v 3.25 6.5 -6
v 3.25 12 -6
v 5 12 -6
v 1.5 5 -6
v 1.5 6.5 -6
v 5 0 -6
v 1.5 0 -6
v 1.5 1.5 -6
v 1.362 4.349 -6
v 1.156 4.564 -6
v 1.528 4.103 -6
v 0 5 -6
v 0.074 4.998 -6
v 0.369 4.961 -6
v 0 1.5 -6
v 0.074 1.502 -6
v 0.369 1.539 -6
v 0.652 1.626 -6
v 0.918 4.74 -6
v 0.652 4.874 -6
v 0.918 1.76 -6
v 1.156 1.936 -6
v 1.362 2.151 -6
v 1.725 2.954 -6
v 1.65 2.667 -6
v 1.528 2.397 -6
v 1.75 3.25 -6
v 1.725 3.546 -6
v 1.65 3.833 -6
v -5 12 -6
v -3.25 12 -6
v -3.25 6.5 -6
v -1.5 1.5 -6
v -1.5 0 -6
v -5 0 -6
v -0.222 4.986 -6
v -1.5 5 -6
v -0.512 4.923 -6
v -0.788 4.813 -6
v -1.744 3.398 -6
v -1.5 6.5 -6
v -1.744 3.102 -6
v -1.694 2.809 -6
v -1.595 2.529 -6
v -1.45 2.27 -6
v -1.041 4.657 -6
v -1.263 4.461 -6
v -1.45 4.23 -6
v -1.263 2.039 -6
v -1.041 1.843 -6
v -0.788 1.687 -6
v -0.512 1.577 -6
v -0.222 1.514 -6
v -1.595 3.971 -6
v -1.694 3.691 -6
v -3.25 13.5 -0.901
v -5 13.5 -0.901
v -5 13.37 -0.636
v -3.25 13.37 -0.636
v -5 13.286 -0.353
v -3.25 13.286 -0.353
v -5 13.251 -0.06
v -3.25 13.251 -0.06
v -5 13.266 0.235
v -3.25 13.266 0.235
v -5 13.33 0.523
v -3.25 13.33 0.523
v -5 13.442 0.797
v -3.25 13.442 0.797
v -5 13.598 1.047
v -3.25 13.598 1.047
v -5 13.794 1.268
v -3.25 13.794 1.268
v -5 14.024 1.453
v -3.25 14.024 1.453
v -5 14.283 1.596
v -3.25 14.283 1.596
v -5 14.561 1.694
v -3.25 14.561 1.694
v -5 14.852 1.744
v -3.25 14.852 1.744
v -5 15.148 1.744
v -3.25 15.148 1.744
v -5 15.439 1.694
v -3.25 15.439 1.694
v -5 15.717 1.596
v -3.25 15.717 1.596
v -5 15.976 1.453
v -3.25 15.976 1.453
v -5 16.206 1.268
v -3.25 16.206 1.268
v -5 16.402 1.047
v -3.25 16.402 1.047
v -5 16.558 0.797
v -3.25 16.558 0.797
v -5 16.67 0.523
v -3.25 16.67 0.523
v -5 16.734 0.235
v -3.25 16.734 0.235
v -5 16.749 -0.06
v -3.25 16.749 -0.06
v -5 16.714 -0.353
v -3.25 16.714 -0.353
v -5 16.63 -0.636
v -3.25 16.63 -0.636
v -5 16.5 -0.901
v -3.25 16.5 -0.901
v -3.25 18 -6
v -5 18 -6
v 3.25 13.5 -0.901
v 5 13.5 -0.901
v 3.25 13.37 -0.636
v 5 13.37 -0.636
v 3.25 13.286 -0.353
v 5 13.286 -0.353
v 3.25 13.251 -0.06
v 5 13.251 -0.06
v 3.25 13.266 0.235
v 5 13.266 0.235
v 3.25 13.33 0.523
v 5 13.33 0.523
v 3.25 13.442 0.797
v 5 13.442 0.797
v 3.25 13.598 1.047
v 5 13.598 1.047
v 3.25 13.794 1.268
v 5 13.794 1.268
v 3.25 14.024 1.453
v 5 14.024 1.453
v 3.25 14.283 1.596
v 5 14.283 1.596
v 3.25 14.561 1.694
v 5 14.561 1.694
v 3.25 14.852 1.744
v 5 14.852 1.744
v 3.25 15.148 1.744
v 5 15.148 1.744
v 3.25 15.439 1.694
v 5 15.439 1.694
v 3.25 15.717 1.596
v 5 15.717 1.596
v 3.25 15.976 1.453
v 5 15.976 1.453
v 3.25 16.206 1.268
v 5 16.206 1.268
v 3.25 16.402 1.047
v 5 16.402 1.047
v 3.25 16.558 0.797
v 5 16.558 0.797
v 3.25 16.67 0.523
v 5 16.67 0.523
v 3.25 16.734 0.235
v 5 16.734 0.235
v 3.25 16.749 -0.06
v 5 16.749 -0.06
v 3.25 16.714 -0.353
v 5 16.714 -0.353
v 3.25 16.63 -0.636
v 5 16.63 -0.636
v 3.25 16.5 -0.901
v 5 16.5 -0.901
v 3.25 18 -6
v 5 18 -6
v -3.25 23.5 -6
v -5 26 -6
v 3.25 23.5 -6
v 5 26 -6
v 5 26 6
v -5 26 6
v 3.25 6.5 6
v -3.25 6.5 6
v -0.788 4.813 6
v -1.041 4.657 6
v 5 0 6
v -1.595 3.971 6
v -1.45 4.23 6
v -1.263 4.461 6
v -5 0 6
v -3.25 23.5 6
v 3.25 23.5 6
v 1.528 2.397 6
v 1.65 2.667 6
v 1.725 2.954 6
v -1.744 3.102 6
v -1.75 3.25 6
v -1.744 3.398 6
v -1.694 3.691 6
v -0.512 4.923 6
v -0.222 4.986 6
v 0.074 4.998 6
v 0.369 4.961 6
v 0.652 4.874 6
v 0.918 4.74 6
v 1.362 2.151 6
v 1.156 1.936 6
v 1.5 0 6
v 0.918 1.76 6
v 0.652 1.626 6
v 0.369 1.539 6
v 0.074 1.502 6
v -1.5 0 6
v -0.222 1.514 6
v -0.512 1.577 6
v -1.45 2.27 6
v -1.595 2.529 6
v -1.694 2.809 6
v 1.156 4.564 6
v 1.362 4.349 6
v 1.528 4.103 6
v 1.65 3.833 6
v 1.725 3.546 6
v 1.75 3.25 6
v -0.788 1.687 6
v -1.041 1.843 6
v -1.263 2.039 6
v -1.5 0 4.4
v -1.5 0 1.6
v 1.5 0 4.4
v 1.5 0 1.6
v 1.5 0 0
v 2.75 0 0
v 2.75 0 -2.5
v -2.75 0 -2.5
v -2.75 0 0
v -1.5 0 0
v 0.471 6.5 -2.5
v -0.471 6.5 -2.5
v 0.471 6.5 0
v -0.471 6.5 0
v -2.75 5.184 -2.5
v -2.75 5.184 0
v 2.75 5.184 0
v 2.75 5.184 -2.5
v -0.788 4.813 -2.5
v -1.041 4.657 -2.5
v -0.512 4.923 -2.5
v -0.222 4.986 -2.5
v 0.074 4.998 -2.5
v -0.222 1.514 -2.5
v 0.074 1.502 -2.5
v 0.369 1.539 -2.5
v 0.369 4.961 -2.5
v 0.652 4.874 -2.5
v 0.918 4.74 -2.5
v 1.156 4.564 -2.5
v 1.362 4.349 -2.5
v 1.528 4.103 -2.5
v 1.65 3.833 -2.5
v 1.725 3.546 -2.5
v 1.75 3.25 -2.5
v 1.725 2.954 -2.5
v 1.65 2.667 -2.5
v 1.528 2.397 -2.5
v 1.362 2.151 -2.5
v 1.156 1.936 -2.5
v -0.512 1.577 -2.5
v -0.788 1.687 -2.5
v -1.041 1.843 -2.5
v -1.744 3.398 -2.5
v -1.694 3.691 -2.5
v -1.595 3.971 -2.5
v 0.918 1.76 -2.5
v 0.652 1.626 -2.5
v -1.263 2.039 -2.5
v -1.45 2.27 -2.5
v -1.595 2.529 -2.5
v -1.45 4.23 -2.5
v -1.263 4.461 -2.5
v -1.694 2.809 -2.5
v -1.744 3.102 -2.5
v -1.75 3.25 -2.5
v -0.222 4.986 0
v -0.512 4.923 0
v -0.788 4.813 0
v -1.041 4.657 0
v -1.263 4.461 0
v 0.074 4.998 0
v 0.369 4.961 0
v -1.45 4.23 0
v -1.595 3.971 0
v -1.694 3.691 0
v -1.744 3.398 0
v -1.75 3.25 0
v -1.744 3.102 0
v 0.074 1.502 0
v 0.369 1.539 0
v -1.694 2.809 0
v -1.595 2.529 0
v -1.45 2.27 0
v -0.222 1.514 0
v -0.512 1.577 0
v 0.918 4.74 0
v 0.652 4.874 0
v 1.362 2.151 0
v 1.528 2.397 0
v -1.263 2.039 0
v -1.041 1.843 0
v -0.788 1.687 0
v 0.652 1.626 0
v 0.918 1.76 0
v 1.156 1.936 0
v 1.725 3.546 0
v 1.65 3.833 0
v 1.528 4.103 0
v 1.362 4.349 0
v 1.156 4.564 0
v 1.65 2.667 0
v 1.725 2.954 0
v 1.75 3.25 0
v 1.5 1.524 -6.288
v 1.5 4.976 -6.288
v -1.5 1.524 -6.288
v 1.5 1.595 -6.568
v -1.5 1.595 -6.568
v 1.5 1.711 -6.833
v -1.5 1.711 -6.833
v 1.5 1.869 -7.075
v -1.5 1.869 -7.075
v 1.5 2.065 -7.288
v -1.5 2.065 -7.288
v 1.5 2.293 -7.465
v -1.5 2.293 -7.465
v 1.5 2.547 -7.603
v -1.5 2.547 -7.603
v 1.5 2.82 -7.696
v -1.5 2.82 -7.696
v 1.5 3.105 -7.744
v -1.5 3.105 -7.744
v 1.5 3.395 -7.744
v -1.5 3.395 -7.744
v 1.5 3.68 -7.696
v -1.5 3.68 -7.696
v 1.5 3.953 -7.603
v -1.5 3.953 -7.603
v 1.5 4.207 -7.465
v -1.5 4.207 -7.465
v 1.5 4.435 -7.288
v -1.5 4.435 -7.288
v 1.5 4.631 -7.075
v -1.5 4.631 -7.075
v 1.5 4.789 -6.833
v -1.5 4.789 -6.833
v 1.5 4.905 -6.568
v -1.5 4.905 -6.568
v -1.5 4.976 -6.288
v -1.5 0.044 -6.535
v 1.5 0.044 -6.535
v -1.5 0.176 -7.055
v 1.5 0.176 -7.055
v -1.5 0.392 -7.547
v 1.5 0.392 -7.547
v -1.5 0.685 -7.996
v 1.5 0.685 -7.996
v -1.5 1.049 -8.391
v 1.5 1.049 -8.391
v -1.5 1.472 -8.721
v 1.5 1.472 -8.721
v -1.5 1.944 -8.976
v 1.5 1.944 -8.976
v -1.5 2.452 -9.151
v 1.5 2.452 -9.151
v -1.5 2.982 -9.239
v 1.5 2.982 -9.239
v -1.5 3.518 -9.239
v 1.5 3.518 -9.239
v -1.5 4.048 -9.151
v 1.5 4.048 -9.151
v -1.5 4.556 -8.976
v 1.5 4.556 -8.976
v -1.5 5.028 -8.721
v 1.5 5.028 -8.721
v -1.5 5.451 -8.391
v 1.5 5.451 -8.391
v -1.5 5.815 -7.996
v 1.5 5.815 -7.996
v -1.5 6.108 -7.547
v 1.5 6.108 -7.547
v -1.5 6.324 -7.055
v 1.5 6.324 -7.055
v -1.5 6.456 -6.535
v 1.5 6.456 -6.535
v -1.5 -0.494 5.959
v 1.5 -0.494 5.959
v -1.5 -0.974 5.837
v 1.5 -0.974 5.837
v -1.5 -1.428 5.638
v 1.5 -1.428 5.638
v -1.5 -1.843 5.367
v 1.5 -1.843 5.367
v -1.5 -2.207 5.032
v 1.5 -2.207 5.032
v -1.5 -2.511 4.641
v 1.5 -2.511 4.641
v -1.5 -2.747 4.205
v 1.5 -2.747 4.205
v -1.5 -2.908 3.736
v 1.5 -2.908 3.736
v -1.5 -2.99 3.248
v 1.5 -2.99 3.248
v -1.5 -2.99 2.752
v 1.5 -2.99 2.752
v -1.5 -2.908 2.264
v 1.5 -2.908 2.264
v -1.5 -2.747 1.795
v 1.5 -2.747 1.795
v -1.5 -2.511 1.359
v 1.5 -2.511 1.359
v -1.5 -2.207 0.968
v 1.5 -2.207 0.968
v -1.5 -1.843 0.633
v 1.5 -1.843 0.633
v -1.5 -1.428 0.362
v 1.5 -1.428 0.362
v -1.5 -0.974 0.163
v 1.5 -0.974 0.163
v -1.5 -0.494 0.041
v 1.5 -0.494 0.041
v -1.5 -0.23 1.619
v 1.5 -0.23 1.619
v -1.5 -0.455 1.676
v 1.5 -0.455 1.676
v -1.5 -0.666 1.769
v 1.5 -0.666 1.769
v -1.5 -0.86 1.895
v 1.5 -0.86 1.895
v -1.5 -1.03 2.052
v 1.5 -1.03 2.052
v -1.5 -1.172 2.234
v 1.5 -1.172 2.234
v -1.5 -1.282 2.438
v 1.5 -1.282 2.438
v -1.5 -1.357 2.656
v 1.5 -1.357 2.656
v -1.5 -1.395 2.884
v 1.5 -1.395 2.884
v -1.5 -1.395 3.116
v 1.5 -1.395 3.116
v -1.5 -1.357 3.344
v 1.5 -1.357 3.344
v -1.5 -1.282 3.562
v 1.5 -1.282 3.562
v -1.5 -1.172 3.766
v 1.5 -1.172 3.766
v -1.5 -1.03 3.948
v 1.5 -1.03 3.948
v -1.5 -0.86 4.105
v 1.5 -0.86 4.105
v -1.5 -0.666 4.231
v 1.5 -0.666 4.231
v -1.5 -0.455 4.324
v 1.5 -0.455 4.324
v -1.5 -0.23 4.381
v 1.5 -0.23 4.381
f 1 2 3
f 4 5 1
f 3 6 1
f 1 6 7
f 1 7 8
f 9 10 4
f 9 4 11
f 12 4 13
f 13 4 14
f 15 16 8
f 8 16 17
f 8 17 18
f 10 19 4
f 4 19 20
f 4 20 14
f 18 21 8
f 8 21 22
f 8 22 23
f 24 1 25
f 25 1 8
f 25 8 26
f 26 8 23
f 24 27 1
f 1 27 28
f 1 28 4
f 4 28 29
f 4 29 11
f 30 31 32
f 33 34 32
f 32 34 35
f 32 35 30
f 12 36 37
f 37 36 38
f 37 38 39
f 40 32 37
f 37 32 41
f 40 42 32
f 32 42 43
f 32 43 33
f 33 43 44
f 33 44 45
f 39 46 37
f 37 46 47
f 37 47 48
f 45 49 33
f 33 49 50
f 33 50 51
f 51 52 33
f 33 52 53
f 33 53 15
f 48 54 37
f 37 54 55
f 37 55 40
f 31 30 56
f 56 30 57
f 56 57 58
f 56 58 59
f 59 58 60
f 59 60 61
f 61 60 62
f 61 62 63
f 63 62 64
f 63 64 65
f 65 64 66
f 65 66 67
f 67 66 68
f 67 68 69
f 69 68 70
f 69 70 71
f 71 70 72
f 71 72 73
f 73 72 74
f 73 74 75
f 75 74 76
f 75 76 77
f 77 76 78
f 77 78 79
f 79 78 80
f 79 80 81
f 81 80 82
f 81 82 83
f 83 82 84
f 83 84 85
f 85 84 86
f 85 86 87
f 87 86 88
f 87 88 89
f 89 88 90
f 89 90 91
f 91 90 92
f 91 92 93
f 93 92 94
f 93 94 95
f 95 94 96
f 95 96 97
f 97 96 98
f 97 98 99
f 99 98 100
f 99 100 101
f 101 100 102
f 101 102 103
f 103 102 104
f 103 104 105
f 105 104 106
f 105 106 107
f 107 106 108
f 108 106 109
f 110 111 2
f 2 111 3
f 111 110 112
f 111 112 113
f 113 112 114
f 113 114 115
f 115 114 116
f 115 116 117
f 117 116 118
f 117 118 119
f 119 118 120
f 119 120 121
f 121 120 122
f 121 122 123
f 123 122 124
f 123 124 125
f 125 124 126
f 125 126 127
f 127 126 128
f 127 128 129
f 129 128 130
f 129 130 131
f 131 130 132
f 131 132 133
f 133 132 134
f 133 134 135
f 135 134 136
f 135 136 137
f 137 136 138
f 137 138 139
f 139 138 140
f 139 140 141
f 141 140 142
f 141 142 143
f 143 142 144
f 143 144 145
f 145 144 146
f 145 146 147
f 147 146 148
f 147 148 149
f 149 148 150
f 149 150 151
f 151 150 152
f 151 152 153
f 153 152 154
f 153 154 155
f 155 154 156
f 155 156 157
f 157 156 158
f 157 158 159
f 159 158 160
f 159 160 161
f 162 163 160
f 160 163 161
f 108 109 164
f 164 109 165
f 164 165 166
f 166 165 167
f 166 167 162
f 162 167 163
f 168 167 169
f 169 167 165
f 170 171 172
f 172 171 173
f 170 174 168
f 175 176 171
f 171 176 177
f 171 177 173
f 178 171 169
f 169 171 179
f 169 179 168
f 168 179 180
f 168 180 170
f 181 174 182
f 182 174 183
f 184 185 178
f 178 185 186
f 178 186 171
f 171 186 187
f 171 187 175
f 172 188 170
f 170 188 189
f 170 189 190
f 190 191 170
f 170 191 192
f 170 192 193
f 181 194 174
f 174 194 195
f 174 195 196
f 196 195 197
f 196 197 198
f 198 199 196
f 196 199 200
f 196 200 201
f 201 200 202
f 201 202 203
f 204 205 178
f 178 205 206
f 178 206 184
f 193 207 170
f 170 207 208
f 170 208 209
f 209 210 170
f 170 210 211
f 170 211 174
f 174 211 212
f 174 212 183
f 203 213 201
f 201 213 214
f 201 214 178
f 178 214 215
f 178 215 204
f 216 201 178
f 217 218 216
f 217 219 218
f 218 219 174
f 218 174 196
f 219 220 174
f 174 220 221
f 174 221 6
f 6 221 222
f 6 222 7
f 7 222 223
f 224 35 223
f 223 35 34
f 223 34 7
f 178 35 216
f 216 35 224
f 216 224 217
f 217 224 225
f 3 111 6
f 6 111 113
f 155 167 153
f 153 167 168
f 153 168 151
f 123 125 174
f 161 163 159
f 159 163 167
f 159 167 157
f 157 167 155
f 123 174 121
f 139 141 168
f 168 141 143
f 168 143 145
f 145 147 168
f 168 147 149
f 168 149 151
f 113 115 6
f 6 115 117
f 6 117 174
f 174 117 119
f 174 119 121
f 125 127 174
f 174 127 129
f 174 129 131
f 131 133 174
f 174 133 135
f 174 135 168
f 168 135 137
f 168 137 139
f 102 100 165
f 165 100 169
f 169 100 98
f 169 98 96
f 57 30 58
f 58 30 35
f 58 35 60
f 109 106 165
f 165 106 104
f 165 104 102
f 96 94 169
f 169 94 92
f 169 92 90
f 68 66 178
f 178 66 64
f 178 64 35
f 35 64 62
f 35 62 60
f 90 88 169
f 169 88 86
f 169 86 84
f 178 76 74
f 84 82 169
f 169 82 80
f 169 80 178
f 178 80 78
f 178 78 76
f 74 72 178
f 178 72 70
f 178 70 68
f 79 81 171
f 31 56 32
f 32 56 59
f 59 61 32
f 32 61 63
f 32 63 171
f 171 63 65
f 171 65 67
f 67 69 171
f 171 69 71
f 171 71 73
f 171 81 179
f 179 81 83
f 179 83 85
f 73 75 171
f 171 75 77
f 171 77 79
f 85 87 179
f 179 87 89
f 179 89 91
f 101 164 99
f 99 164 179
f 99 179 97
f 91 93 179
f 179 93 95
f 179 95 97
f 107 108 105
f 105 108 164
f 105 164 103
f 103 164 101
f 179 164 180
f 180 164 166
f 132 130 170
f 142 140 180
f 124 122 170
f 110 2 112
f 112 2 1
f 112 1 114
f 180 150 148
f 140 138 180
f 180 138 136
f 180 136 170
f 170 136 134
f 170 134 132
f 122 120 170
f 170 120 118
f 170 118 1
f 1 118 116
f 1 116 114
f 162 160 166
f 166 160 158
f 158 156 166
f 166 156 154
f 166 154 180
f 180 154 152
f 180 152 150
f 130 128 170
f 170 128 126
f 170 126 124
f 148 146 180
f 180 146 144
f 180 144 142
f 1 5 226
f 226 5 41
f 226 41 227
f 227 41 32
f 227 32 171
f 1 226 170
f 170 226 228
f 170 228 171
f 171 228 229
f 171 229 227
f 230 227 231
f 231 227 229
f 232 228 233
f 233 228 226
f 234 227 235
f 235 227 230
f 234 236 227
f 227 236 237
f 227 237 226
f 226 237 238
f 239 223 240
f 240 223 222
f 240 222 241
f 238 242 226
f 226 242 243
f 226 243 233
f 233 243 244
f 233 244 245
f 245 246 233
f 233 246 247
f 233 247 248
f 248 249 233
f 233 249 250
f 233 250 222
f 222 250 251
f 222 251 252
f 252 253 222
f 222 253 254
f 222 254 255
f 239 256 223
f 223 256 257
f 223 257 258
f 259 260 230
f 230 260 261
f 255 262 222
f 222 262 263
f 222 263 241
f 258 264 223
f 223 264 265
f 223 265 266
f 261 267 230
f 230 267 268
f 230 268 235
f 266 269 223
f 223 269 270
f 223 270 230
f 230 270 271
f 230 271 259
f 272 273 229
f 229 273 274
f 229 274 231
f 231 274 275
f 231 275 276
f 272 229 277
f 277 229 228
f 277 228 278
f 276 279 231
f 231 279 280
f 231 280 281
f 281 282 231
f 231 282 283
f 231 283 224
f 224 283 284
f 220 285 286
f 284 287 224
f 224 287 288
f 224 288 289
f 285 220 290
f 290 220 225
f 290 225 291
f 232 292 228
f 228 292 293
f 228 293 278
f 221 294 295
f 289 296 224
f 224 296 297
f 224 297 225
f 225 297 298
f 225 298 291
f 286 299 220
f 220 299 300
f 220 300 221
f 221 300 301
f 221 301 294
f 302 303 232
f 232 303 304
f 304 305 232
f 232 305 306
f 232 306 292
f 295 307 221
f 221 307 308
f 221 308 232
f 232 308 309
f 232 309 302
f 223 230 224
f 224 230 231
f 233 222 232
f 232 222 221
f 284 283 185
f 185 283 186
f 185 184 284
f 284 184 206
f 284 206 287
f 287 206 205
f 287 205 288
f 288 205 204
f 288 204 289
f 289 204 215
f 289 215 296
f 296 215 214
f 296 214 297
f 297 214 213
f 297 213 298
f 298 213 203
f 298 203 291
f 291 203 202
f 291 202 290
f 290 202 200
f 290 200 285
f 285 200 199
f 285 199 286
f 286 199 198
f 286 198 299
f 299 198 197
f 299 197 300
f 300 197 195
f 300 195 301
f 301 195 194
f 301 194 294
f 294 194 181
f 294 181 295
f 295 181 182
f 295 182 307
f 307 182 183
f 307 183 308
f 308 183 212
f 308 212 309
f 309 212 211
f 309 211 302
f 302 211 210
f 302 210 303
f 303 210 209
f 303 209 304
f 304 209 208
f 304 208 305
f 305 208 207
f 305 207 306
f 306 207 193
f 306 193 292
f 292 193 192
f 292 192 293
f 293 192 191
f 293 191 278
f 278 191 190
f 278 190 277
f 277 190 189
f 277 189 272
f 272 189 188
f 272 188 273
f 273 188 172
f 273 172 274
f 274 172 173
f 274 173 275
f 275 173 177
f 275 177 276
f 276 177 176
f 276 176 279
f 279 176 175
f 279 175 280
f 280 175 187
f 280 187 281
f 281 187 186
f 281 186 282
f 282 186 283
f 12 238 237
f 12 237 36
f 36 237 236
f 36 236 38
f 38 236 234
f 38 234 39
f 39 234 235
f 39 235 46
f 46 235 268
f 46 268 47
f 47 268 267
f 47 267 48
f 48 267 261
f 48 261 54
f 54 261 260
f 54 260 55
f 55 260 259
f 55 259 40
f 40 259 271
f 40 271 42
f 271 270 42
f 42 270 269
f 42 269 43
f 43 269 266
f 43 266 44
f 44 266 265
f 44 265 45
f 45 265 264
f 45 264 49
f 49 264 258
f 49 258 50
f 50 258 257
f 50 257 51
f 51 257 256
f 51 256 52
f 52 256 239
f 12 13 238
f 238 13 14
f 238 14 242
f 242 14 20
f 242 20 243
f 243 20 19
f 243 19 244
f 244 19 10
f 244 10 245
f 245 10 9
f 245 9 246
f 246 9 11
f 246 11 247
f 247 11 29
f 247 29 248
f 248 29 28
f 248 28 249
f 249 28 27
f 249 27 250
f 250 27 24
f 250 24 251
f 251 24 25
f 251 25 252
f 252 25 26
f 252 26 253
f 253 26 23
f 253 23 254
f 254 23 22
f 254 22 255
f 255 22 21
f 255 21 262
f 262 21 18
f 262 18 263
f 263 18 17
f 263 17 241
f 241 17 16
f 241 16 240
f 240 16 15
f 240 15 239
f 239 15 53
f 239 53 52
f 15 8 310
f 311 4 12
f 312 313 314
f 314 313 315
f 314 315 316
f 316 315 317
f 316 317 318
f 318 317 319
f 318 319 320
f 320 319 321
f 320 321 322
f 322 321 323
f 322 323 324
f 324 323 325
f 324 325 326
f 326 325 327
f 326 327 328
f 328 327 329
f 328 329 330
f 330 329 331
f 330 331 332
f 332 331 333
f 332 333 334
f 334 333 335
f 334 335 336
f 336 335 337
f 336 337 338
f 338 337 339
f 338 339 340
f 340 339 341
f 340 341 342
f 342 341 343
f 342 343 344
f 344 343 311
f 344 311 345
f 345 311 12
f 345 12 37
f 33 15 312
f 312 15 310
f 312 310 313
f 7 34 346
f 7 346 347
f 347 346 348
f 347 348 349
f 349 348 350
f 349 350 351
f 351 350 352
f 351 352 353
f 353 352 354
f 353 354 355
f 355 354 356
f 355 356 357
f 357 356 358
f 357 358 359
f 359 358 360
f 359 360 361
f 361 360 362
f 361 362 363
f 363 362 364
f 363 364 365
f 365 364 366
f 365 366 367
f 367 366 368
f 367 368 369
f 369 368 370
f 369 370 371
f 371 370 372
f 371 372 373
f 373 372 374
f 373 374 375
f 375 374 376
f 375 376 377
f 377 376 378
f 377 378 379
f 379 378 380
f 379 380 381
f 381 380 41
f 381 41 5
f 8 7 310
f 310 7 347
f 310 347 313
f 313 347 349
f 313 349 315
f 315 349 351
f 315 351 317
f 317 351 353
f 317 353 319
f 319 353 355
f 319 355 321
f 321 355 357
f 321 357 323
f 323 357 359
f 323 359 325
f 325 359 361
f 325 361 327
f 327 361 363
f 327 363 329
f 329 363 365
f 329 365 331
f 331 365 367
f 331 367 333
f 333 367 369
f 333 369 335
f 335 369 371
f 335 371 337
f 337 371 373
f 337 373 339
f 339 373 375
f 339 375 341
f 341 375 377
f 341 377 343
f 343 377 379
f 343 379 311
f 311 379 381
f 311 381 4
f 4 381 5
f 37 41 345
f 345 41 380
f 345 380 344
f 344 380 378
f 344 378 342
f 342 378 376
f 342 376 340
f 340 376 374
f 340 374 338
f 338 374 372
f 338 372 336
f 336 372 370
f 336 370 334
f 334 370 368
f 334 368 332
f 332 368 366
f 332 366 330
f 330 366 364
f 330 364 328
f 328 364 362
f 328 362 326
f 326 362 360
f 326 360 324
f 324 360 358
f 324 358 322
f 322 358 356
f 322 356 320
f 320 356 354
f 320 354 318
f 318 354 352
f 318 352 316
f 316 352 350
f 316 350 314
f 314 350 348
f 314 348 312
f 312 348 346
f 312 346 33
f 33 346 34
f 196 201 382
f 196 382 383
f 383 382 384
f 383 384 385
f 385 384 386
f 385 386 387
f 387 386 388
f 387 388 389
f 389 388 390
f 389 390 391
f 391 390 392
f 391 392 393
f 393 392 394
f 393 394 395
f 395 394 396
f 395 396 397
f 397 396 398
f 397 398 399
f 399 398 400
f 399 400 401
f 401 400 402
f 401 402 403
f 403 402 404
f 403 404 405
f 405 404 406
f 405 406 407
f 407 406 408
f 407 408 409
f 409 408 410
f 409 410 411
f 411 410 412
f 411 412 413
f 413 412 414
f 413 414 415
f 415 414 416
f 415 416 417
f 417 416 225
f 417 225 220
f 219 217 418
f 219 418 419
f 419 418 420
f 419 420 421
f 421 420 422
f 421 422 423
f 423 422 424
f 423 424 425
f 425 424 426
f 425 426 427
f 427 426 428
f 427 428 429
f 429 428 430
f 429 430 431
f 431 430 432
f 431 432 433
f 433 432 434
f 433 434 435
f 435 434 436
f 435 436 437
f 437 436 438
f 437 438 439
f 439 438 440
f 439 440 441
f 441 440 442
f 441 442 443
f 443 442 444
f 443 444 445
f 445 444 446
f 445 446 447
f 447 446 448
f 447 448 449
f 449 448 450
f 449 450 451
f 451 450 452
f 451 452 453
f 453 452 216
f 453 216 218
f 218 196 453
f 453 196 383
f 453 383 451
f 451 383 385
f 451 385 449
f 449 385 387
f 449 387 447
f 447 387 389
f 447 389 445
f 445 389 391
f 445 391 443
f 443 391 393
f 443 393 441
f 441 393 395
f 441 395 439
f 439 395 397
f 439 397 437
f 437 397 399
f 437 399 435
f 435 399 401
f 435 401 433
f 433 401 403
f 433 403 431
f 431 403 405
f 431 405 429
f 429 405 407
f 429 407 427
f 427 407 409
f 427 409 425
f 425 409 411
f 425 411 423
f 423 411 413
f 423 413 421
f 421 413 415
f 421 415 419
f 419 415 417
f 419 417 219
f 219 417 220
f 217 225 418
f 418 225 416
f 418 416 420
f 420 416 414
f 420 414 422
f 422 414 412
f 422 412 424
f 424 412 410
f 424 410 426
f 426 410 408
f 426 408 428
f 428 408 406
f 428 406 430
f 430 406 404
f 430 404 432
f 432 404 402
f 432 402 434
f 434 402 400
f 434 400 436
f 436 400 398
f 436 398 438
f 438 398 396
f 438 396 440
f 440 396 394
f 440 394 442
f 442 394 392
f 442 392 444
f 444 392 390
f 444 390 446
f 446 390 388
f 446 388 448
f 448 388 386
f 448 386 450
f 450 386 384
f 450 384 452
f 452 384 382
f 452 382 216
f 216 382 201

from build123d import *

# Parameters (mm, degrees)
BOSS_EXTRUDE1_DEPTH = 5
SKETCH2_W           = 6.5
SKETCH2_H           = 17
CUT_EXTRUDE1_DEPTH  = 20
CUT_EXTRUDE2_DEPTH  = 2.5
SKETCH4_R           = 1.75
CUT_EXTRUDE3_DEPTH  = 10
BOSS_EXTRUDE2_DEPTH = 1.5


with BuildPart() as part:
    # Sketch1 → Boss-Extrude1 (new, symmetric)
    with BuildSketch(Plane(origin=(0, 0, 0), x_dir=(0, 0, -1), z_dir=(1, 0, 0))):
        with BuildLine():
            Line((-6, 0), (6, 0))
            Line((6, 0), (6, 12))
            Line((6, 12), (0.901387819, 13.5))
            ThreePointArc((0.901387819, 13.5), (-1.75, 15), (0.901387819, 16.5))
            Line((0.901387819, 16.5), (6, 18))
            Line((6, 18), (6, 26))
            Line((6, 26), (-6, 26))
            Line((-6, 26), (-6, 0))
        make_face()
    extrude(amount=BOSS_EXTRUDE1_DEPTH, both=True)

    # Sketch2 → Cut-Extrude1 (cut)
    with BuildSketch(Plane.XY.offset(6)):
        with Locations((0, 15)):
            Rectangle(SKETCH2_W, SKETCH2_H)
    extrude(amount=-CUT_EXTRUDE1_DEPTH, mode=Mode.SUBTRACT)

    # Sketch3 → Cut-Extrude2 (cut)
    with BuildSketch(Plane.XY):
        Polygon((-2.75, 0), (2.75, 0), (2.75, 5.184123402), (0, 6.771836642), (-2.75, 5.184123402), align=None)
    extrude(amount=-CUT_EXTRUDE2_DEPTH, mode=Mode.SUBTRACT)

    # Sketch4 → Cut-Extrude3 (cut, symmetric)
    with BuildSketch(Plane.XY):
        with Locations(Location((0, 3.25, 0), (0, 0, 180))):
            Circle(SKETCH4_R)
    extrude(amount=CUT_EXTRUDE3_DEPTH, both=True, mode=Mode.SUBTRACT)

    # Sketch5 → Boss-Extrude2 (add, symmetric)
    with BuildSketch(Plane(origin=(0, 0, 0), x_dir=(0, 0, -1), z_dir=(1, 0, 0))):
        with BuildLine():
            Line((6, 5), (6, 6.5))
            ThreePointArc((6, 6.5), (9.25, 3.25), (6, 0))
            Line((6, 0), (6, 1.5))
            ThreePointArc((6, 1.5), (7.75, 3.25), (6, 5))
        make_face()
        with BuildLine():
            Line((-4.4, 0), (-6, 0))
            ThreePointArc((-6, 0), (-3, -3), (0, 0))
            Line((0, 0), (-1.6, 0))
            ThreePointArc((-1.6, 0), (-3, -1.4), (-4.4, 0))
        make_face()
    extrude(amount=BOSS_EXTRUDE2_DEPTH, both=True)


solid = part.part
